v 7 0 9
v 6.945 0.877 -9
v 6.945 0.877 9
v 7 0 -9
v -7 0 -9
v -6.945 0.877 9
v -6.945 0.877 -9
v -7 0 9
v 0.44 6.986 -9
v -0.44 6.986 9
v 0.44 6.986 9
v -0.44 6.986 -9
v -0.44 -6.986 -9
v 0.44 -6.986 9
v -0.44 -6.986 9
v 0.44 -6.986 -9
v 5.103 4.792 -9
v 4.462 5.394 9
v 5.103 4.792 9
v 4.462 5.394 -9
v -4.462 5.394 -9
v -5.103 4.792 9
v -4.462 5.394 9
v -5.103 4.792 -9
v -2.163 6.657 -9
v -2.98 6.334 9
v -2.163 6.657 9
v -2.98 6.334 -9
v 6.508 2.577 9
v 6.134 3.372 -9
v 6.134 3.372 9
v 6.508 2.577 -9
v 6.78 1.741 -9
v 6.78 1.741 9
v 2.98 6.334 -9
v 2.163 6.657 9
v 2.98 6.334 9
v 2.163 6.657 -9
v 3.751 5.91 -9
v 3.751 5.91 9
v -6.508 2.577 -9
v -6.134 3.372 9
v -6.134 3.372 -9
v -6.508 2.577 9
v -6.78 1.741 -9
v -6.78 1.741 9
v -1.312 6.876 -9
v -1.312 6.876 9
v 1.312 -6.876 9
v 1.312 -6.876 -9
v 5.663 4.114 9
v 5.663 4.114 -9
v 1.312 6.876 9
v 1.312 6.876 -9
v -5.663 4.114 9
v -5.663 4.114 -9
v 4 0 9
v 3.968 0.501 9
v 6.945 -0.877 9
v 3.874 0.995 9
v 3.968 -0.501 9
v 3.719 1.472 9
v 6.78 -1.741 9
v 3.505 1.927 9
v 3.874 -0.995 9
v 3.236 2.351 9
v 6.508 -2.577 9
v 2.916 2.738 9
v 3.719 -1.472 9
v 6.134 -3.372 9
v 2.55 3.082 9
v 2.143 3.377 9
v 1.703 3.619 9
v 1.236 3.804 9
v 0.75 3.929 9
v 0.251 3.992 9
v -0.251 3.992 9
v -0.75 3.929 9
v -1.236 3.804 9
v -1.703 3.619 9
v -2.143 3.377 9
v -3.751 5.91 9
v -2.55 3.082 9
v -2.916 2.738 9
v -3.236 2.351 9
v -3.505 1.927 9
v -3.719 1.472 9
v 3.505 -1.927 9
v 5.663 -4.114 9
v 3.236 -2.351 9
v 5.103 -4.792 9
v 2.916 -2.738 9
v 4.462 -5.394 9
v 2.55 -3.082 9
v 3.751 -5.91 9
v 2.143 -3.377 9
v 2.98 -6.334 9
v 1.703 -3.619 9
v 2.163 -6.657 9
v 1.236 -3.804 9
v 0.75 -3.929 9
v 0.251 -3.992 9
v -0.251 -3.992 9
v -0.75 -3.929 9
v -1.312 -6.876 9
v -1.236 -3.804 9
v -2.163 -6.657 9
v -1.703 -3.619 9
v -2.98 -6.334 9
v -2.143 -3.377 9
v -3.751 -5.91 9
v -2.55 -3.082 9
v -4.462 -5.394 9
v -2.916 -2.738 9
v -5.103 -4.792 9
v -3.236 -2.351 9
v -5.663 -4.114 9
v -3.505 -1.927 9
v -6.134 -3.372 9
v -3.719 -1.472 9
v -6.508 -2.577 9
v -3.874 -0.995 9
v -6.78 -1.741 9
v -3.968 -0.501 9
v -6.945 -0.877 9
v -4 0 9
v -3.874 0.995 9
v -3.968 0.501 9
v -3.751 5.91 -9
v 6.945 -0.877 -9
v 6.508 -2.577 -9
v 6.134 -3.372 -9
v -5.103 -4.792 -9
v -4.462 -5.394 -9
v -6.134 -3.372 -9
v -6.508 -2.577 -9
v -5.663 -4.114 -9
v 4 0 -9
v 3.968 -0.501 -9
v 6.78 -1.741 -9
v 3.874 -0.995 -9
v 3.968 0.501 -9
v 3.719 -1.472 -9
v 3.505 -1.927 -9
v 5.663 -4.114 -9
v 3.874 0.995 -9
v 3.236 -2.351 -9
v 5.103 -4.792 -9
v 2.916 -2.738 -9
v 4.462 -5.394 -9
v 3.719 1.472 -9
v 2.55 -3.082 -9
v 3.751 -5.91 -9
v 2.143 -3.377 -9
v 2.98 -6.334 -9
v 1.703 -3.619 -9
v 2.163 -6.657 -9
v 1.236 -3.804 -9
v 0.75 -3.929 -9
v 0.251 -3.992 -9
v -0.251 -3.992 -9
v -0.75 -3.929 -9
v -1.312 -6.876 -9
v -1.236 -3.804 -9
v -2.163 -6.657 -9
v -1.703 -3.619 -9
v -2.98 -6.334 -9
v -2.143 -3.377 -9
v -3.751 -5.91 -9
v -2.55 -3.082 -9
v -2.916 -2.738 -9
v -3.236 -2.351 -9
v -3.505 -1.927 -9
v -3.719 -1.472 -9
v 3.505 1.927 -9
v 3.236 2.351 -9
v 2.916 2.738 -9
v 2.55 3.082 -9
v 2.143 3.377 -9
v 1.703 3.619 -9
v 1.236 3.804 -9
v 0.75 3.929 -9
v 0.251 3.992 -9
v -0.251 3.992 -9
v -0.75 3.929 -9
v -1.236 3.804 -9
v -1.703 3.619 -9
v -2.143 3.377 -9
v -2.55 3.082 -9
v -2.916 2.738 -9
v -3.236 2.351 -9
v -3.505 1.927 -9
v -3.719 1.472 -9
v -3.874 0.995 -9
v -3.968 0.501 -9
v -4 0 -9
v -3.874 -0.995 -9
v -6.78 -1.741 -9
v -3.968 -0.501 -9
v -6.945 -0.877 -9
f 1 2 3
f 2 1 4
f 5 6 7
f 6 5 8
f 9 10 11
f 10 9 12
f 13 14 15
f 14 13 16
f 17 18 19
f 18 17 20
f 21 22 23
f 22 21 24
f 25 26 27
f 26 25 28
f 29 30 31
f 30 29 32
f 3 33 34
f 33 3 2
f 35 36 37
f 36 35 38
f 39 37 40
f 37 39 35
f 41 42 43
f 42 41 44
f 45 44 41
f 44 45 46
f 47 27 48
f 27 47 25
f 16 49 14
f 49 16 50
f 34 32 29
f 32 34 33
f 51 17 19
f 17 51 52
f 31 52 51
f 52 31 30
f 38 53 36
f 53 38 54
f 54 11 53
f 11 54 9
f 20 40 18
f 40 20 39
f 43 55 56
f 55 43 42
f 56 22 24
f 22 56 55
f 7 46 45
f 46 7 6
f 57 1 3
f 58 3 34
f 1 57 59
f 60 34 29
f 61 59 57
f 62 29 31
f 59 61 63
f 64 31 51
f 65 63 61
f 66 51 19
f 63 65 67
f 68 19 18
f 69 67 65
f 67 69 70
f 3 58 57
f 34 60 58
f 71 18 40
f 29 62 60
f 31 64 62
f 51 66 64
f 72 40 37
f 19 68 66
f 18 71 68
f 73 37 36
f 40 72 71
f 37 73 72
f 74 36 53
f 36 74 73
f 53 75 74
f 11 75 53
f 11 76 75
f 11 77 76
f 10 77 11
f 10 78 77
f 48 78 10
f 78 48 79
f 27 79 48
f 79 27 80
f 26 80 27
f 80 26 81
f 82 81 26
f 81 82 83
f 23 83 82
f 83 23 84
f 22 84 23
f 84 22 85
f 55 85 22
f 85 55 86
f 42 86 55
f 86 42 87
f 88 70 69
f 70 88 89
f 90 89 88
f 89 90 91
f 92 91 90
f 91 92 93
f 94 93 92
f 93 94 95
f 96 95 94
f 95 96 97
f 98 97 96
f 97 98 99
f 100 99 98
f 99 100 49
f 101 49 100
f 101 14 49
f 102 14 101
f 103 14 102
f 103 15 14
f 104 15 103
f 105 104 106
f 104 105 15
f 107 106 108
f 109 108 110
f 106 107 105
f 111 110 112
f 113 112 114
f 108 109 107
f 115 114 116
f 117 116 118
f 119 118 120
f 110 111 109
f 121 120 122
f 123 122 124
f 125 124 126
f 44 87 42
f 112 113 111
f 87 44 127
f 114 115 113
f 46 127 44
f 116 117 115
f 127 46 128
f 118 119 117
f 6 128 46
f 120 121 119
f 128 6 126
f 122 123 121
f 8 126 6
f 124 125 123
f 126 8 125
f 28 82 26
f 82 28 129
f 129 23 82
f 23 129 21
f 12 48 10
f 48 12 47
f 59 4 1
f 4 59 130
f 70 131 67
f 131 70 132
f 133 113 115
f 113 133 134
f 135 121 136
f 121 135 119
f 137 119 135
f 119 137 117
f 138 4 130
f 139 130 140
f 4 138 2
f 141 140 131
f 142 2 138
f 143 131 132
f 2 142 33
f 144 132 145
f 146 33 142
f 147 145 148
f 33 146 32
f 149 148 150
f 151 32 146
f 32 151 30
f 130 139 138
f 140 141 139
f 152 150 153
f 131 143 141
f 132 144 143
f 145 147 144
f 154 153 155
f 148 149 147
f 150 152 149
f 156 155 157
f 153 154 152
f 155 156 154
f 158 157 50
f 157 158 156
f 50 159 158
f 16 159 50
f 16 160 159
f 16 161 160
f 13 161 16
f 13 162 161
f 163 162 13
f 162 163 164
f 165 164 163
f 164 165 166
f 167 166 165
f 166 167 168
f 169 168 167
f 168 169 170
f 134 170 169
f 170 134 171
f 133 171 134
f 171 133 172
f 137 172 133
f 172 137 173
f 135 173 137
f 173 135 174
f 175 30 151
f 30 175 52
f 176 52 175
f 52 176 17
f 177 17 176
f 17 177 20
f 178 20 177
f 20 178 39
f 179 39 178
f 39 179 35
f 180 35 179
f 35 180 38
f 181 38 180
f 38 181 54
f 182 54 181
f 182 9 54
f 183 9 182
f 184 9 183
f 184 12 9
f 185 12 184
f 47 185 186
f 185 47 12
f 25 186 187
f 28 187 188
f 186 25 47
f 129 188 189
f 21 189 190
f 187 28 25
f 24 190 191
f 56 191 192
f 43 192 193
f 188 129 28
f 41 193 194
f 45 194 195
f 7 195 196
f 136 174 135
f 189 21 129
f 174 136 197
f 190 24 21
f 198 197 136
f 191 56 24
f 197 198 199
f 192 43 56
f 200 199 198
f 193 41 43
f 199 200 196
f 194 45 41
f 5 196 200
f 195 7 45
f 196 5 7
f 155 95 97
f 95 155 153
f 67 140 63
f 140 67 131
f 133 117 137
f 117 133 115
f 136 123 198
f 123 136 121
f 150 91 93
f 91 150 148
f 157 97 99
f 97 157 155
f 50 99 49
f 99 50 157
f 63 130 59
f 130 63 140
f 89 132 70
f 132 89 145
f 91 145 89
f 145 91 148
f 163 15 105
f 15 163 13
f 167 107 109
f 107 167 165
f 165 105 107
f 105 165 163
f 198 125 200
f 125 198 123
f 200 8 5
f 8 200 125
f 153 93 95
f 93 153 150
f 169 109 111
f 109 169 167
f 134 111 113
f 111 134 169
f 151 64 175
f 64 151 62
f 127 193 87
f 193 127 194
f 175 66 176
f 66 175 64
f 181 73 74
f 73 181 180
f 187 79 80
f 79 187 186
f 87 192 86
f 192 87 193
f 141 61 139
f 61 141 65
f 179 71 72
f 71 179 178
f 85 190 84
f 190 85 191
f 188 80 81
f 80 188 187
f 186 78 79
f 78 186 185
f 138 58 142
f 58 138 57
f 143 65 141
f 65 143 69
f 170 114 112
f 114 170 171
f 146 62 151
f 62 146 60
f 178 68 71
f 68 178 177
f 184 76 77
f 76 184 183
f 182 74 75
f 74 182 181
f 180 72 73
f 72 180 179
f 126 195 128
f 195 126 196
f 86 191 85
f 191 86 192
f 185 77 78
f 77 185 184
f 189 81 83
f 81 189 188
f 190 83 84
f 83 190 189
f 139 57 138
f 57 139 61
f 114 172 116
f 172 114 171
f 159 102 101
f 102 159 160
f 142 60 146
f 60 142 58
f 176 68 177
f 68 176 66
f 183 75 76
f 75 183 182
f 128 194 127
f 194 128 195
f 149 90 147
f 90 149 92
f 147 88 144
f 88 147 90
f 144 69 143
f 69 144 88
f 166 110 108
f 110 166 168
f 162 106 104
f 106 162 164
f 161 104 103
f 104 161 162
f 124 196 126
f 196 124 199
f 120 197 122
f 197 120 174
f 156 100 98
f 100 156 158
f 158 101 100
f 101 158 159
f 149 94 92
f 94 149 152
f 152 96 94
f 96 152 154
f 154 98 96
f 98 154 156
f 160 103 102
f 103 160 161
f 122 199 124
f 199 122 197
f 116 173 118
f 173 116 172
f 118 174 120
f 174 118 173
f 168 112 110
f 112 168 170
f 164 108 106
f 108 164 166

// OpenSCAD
$fn = 50;


difference() {
	union() {
		translate(v = [0, 0, -9.0000000000]) {
			cylinder(h = 18, r = 7.0000000000);
		}
	}
	union() {
		translate(v = [0, 0, -100.0000000000]) {
			cylinder(h = 200, r = 4);
		}
	}
}
